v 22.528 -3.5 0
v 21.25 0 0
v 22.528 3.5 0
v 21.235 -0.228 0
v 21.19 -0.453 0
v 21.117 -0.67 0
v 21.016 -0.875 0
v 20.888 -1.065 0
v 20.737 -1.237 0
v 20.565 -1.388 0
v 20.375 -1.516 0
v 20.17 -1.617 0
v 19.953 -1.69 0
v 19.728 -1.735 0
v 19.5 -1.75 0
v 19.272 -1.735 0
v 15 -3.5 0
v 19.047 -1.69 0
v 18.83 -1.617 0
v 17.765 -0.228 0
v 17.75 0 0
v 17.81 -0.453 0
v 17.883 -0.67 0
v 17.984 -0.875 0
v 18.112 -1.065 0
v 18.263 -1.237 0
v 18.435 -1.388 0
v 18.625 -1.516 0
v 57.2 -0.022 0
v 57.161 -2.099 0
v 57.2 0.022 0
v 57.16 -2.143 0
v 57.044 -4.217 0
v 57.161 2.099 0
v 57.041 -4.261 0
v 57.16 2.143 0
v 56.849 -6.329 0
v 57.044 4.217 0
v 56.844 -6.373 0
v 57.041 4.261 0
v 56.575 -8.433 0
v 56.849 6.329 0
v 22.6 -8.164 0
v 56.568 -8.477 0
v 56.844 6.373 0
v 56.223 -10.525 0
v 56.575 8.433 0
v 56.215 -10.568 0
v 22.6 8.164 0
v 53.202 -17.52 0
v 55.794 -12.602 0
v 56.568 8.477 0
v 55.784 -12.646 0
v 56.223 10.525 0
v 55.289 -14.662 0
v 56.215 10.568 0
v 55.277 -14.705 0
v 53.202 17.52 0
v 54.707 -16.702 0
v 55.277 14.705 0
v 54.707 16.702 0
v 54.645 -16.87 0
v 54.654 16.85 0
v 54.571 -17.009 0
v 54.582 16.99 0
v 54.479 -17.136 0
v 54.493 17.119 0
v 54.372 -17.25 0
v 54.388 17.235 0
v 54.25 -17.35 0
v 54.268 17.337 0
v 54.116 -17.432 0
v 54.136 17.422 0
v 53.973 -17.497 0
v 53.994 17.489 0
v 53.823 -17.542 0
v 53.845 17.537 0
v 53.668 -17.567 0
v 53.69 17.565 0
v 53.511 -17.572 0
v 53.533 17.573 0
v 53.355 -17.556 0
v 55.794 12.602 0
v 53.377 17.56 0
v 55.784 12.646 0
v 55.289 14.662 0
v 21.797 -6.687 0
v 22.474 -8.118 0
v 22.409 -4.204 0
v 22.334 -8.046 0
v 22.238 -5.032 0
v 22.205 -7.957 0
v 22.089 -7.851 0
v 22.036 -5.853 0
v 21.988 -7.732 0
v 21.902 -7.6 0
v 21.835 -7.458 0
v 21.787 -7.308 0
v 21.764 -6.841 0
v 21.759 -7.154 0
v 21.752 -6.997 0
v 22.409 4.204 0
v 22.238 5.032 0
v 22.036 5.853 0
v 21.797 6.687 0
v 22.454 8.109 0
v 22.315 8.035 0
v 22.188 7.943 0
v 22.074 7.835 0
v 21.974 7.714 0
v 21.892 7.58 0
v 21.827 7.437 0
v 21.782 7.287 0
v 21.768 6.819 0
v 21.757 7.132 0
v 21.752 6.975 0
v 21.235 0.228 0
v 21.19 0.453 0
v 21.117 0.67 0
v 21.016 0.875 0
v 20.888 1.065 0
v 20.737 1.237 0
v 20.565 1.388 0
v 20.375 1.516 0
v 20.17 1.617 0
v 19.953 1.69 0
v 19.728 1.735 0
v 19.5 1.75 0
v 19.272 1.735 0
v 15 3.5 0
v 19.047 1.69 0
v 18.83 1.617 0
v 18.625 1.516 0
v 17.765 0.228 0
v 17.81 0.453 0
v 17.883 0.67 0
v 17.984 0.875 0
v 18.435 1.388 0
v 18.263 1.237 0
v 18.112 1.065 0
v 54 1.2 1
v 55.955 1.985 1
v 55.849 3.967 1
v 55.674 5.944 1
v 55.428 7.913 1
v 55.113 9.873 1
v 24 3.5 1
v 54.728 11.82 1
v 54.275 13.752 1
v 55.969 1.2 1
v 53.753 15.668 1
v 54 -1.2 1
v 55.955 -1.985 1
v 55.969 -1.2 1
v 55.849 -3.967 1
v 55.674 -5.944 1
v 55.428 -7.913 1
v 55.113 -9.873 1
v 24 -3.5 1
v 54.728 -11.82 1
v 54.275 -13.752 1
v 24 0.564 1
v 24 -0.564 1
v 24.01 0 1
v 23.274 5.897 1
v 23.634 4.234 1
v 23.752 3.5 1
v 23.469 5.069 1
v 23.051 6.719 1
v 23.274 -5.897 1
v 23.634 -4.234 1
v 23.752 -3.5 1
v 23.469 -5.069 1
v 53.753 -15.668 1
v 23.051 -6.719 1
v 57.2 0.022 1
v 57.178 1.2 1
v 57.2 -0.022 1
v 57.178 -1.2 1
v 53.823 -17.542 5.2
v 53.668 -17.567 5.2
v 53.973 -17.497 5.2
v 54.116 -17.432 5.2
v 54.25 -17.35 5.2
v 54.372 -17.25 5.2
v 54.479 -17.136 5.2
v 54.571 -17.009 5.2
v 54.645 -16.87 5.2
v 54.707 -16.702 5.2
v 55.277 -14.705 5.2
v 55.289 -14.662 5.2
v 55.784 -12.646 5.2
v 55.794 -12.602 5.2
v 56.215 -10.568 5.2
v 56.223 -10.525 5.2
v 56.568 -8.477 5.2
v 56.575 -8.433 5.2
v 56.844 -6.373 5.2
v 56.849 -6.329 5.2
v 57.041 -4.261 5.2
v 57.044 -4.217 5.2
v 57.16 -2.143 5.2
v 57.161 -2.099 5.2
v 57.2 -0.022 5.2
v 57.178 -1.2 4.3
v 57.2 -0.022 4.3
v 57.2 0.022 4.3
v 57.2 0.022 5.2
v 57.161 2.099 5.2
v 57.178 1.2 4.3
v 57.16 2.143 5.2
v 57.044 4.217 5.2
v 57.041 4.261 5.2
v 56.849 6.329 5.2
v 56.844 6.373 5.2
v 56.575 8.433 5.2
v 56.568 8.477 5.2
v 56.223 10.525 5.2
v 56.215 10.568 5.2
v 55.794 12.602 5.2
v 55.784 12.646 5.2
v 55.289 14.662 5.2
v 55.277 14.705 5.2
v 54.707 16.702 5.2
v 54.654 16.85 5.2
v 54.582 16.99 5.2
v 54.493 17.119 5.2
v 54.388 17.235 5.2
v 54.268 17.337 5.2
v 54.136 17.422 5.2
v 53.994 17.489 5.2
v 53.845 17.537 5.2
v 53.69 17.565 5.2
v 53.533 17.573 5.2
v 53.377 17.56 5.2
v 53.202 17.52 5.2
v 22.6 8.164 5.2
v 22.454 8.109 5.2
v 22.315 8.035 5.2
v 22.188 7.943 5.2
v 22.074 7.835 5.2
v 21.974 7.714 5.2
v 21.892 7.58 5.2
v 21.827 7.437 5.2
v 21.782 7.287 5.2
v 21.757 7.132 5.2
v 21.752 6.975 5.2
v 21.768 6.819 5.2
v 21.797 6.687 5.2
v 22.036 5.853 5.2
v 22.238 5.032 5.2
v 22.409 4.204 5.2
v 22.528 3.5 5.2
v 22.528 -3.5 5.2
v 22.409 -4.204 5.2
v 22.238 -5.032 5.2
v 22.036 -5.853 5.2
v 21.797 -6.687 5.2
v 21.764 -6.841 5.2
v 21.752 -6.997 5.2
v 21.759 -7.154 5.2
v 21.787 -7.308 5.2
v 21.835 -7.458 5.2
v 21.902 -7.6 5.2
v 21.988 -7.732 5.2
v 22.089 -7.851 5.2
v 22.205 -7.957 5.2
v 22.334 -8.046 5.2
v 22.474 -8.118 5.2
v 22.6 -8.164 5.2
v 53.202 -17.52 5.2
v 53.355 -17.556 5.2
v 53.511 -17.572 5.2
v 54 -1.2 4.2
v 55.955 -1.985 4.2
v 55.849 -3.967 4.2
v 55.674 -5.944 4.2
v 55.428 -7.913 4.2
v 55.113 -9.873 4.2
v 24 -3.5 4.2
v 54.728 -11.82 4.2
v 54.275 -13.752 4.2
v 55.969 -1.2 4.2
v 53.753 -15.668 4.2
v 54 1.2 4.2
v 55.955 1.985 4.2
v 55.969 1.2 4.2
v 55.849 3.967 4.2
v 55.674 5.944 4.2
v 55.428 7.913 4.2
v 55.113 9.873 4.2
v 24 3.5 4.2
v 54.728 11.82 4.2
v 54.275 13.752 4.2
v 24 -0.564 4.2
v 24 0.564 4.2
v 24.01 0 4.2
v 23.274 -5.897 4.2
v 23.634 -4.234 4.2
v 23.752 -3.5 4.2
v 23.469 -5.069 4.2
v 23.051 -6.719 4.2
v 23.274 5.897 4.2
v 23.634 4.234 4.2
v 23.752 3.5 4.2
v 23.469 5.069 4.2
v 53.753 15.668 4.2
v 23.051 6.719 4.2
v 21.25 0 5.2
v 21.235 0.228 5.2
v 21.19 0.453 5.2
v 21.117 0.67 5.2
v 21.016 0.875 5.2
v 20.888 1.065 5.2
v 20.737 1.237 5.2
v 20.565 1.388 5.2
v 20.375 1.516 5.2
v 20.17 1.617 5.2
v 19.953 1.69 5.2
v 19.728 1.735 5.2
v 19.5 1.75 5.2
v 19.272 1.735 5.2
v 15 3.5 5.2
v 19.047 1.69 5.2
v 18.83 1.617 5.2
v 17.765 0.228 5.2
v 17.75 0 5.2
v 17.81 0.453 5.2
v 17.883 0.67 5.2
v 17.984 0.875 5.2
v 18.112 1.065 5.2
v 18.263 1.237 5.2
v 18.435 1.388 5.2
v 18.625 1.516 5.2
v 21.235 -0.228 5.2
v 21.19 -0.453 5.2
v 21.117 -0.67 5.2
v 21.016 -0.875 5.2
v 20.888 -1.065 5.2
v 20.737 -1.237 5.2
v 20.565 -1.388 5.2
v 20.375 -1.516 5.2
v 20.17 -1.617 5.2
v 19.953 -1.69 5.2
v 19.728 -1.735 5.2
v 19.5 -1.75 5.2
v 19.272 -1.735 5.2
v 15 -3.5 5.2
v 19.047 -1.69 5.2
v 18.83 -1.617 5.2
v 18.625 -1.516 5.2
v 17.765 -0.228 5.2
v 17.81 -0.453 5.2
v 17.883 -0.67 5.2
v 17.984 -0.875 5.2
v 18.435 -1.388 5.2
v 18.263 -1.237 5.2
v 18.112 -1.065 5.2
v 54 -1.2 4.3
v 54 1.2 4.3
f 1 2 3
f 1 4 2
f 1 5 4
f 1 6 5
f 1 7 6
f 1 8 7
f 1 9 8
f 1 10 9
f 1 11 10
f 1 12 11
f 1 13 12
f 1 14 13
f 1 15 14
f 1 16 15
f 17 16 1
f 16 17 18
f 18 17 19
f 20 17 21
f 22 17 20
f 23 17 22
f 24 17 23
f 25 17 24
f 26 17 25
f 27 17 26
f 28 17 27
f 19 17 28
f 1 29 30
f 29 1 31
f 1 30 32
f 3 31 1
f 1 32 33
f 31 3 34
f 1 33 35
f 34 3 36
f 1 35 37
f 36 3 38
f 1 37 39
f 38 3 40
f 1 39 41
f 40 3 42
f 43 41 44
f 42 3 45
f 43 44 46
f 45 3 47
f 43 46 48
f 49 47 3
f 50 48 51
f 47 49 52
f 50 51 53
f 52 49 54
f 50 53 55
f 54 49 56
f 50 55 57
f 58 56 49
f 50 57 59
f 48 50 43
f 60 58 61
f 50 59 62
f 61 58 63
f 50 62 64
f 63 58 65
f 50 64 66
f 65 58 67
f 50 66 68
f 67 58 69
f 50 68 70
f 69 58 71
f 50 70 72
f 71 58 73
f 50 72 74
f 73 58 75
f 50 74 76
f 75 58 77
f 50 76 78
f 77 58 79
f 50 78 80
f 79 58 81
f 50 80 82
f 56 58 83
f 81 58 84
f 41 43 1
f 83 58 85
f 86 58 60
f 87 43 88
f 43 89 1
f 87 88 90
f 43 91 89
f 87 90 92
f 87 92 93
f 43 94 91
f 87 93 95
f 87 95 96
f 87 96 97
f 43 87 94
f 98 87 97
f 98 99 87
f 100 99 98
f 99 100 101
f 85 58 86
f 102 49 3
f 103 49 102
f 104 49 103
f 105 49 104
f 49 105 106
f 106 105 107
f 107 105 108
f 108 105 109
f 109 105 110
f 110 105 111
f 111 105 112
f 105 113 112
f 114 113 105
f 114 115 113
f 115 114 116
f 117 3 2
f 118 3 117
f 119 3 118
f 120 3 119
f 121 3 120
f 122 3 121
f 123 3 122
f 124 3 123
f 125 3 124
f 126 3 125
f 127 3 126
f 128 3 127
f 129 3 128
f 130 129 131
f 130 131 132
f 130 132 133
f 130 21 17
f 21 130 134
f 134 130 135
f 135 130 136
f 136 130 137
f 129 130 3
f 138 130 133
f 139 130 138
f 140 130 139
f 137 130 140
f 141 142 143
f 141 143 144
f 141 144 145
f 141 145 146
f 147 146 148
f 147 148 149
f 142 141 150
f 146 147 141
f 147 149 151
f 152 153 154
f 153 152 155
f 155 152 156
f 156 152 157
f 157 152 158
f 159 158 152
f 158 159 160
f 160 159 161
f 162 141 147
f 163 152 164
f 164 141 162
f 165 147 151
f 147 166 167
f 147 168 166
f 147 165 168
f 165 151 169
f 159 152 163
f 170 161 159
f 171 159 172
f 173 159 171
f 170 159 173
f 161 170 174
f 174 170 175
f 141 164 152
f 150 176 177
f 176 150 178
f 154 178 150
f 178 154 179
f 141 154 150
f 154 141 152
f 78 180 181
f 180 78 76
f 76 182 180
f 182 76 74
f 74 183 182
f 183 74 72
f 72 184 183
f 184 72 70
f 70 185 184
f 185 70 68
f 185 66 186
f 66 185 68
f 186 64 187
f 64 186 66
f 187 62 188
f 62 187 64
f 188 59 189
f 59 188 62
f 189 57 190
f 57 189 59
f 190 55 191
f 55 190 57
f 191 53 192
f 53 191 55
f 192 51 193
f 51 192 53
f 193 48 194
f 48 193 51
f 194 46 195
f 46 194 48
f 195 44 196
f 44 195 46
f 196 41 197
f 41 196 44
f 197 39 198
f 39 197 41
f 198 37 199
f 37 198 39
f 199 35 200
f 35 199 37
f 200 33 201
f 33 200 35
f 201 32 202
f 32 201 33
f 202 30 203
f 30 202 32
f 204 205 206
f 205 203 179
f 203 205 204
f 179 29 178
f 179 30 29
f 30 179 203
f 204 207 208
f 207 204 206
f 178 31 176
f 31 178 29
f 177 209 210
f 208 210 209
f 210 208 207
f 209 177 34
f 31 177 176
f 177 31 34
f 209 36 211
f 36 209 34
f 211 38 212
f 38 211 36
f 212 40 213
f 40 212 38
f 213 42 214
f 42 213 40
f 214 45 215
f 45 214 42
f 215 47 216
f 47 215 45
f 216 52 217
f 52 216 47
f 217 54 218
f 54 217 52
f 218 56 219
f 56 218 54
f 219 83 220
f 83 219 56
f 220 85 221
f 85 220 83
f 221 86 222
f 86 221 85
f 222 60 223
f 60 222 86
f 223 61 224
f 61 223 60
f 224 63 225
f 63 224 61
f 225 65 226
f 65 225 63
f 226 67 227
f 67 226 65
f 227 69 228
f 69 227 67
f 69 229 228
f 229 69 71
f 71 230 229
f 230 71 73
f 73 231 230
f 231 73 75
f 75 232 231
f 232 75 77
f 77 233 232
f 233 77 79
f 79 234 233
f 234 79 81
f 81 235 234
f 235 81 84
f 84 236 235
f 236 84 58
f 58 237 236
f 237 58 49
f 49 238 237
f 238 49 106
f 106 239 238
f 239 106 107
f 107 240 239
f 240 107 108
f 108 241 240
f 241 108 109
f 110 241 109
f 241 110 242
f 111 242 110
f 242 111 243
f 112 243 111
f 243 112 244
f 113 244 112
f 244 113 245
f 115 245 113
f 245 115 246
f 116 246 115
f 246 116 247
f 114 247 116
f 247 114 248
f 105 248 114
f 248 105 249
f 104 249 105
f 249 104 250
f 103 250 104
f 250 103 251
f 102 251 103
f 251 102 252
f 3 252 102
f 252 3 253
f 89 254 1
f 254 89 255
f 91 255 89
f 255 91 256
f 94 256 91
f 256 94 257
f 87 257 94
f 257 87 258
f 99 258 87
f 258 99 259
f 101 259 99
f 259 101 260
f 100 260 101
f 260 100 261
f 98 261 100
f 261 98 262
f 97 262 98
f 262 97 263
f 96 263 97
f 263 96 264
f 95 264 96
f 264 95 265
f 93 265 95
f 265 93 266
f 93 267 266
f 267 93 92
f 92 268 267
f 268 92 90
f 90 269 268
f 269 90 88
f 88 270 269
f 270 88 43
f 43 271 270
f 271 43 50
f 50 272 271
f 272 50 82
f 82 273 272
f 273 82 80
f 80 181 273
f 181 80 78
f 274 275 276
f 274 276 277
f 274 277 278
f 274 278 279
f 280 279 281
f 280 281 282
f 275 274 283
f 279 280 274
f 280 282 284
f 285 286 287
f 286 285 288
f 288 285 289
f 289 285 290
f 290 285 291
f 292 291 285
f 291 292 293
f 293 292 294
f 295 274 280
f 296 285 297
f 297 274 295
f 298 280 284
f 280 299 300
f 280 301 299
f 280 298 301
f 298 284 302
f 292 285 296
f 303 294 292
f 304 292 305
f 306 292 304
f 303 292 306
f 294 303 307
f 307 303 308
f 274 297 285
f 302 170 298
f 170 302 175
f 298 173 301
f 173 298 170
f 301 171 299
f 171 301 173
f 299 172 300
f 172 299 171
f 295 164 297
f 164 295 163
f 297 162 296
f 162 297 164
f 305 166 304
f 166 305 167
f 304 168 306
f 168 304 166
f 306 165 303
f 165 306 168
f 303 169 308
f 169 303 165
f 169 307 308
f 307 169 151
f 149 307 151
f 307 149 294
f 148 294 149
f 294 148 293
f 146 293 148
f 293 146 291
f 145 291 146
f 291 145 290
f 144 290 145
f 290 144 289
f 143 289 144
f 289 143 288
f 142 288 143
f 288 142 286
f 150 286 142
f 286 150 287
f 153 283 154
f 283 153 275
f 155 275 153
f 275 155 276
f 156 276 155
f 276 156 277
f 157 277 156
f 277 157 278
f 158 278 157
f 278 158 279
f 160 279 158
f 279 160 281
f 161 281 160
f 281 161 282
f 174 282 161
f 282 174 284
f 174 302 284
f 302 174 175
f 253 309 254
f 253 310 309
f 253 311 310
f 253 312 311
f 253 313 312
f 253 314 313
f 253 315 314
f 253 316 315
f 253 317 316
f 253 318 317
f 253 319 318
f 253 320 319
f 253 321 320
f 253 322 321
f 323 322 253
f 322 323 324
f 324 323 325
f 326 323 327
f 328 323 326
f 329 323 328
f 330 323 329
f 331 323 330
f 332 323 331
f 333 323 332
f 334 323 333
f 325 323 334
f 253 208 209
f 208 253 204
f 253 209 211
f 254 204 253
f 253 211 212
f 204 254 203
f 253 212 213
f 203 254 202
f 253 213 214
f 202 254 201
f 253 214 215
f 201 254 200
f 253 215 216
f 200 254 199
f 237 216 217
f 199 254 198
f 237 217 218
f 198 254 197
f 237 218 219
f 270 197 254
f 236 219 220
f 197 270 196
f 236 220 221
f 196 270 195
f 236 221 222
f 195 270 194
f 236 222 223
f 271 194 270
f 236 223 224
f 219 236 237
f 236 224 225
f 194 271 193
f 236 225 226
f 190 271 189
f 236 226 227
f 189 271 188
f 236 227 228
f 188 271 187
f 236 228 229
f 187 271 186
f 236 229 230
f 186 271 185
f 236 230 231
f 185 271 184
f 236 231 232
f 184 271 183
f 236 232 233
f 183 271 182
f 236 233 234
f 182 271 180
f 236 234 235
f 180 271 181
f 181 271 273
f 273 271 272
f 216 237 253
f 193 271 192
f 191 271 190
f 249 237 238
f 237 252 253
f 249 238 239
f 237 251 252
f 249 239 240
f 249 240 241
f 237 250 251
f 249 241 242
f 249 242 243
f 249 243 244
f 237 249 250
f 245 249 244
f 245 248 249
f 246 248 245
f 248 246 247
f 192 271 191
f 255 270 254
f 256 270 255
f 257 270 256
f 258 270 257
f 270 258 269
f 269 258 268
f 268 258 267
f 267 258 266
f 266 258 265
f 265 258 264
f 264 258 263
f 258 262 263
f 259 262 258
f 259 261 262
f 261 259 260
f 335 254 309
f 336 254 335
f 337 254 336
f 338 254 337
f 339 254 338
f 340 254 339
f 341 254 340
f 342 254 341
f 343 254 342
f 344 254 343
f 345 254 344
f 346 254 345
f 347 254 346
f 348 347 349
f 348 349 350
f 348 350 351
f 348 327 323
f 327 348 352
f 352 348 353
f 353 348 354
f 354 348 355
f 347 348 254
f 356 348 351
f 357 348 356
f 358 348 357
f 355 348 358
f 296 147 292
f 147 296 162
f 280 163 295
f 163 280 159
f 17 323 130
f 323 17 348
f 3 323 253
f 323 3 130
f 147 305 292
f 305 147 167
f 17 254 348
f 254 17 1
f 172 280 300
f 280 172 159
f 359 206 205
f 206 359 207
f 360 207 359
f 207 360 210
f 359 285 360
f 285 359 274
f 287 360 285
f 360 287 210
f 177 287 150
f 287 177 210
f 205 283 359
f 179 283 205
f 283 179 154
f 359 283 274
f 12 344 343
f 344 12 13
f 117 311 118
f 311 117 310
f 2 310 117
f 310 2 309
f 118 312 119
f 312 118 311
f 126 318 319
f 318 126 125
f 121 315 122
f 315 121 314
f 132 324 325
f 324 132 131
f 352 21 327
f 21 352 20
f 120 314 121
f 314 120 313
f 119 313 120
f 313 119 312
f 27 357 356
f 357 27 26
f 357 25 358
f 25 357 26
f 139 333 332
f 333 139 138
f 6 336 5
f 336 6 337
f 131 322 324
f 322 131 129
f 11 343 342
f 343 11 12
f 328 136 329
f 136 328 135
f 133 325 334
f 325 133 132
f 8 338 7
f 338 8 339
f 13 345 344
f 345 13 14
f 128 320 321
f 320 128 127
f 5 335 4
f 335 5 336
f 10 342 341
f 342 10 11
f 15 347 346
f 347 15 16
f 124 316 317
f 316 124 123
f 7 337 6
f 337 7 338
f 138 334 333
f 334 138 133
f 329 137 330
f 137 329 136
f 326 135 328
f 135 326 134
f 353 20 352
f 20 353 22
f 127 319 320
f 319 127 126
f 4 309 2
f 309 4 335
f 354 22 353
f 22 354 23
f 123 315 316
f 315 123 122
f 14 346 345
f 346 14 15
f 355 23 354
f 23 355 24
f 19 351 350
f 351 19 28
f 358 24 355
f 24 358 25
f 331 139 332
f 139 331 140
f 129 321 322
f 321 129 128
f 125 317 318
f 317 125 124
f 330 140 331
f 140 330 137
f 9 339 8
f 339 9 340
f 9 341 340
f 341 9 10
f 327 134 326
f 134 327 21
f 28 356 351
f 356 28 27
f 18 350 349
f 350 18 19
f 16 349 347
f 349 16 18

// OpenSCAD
// file: parameters.scad
// =============================================================================
// Gen-M Dual-stator sandwich AFPM — WOUND-AWARE parameters (HARD GATE)
// Evolution of withdrawn Gen-J. Magnet face ↔ WOUND coil face ≥ 0.8 mm.
// =============================================================================

// --- Wire / wind budget (26 AWG, ~1 lb spool) ---------------------------------
wire_awg            = 26;
wire_od             = 0.45;     // insulated OD mm (audit assumption)
turns               = 120;      // design turns per pancake
fill                = 0.70;     // packing factor for build estimate
layers_per_face     = 3;        // axial layers budgeted proud of EACH flange
wind_build_axial    = layers_per_face * wire_od * fill;   // 3*0.45*0.7 = 0.945 mm
wind_build_radial   = 2 * wire_od * fill;                 // ~0.63 mm radial overfill budget

// --- Pancake former (bare STL) -----------------------------------------------
coil_id_r           = 24.0;
coil_od_r           = 56.0;
span_deg            = 34.0;     // 9 stations × 40° pitch, 34° copper span
former_web          = 3.2;      // core / web between flanges
flange_t            = 1.0;
wall                = 1.2;      // ≥0.8; load wall 1.2
slot_w              = 2.4;
mount_hole          = 3.5;      // M3 clear
tab_len             = 7.0;

former_bare_h       = former_web + 2 * flange_t;          // 5.2 mm
coil_envelope_h     = former_bare_h + 2 * wind_build_axial; // 7.09 mm

// --- Running clearance (magnet face → WOUND face) ----------------------------
run_clear           = 0.85;     // ≥ 0.8 mm after stated wind
// Front wind stands proud of stator face by wind_build_axial when bay seats
// bare former + back-face copper. Spacer sets magnet → stator face:
gap_spacer_h        = run_clear + wind_build_axial;       // 1.795 ≈ 1.80 mm
// ⇒ magnet_to_wound = gap_spacer_h - wind_build_axial = run_clear = 0.85 mm PASS

// --- Stator bay (sized to WOUND radial + axial, not bare former) -------------
coil_stations       = 9;        // 9+9; document if 12+12 won't one-plate
bay_r_in            = coil_id_r - 2.0 - wind_build_radial;  // ~21.37
bay_r_out           = coil_od_r + 2.0 + wind_build_radial;  // ~58.63
bay_span            = span_deg + 4.0;                       // circumferential clear
bay_offset          = 2.0;      // extra pocket clearance beyond wound outline
// Seat bare former + back wind; front wind proud of stator face
bay_depth           = former_bare_h + wind_build_axial;     // 6.145 mm
stator_back_web     = 2.5;
stator_thick        = bay_depth + stator_back_web;          // ~8.65 mm
stator_od           = 152.0;
shaft_clear_stator  = 40.0;
coil_mount_r        = 32.0;

// --- Rotor (dual-face Halbach) -----------------------------------------------
large_pocket_d      = 20.3;
small_pocket_d      = 5.3;
pocket_h            = 5.2;
large_n             = 8;
R_large             = 52.0;
R_small             = [40.0, 52.0, 64.0];
carrier_od          = 148.0;
carrier_thick       = 12.0;     // 5.2 + 1.6 web + 5.2
hub_h               = 10.0;
hub_od              = 30.0;

// --- Modular MAX interface ---------------------------------------------------
shaft_bore          = 8.35;
bearing_d           = 21.85;
bearing_h           = 7.2;
m3_clear            = 3.5;
bolt_r_inner        = 36.0;
bolt_n_inner        = 6;
outer_bolt_r        = 70.0;
outer_bolt_n        = 6;
flange_bolt_r       = 72.0;     // Gen-E family
flange_bolt_n       = 6;
brace_r             = 68.0;
brace_d             = 4.3;
brace_n             = 4;

// --- Gap spacer pad ----------------------------------------------------------
spacer_pad_od       = 14.0;
spacer_pad_id       = m3_clear;

// --- Endbell -----------------------------------------------------------------
endbell_od          = 152.0;
endbell_thick       = 8.0;
endbell_shaft_clear = 10.0;

$fn = 64;
// main file
// Gen-M pancake former — print ×18 (9 per stator)
// WOUND BUDGET: 26 AWG wire_od=0.45, turns=120, fill=0.7
// wind_build_axial = 3 * 0.45 * 0.7 = 0.945 mm each face
// coil_envelope_h = former_web + 2*flange_t + 2*wind_build_axial = 7.09 mm
include <parameters.scad>;
$fn = 48;

module sector_2d(r_in, r_out, ang) {
    polygon([
        for (a = [-ang/2 : ang/16 : ang/2]) [r_in*cos(a), r_in*sin(a)],
        for (a = [ang/2 : -ang/16 : -ang/2]) [r_out*cos(a), r_out*sin(a)]
    ]);
}
module flange() {
    linear_extrude(flange_t) offset(r=wall) sector_2d(coil_id_r, coil_od_r, span_deg);
}
difference() {
    union() {
        flange();
        translate([0, 0, flange_t])
            linear_extrude(former_web)
                difference() {
                    offset(r=wall) sector_2d(coil_id_r, coil_od_r, span_deg);
                    sector_2d(coil_id_r + 0.01, coil_od_r - 0.01, span_deg - 1.5);
                }
        translate([0, 0, flange_t + former_web]) flange();
        translate([coil_id_r - tab_len - 2, -3.5, 0])
            cube([tab_len + 2, 7, former_bare_h]);
    }
    translate([coil_od_r - 2, -slot_w/2, flange_t])
        cube([wall + 4, slot_w, former_web + 0.1]);
    translate([coil_id_r - tab_len/2 - 1, 0, -0.1])
        cylinder(d=mount_hole, h=former_bare_h + 1);
}
